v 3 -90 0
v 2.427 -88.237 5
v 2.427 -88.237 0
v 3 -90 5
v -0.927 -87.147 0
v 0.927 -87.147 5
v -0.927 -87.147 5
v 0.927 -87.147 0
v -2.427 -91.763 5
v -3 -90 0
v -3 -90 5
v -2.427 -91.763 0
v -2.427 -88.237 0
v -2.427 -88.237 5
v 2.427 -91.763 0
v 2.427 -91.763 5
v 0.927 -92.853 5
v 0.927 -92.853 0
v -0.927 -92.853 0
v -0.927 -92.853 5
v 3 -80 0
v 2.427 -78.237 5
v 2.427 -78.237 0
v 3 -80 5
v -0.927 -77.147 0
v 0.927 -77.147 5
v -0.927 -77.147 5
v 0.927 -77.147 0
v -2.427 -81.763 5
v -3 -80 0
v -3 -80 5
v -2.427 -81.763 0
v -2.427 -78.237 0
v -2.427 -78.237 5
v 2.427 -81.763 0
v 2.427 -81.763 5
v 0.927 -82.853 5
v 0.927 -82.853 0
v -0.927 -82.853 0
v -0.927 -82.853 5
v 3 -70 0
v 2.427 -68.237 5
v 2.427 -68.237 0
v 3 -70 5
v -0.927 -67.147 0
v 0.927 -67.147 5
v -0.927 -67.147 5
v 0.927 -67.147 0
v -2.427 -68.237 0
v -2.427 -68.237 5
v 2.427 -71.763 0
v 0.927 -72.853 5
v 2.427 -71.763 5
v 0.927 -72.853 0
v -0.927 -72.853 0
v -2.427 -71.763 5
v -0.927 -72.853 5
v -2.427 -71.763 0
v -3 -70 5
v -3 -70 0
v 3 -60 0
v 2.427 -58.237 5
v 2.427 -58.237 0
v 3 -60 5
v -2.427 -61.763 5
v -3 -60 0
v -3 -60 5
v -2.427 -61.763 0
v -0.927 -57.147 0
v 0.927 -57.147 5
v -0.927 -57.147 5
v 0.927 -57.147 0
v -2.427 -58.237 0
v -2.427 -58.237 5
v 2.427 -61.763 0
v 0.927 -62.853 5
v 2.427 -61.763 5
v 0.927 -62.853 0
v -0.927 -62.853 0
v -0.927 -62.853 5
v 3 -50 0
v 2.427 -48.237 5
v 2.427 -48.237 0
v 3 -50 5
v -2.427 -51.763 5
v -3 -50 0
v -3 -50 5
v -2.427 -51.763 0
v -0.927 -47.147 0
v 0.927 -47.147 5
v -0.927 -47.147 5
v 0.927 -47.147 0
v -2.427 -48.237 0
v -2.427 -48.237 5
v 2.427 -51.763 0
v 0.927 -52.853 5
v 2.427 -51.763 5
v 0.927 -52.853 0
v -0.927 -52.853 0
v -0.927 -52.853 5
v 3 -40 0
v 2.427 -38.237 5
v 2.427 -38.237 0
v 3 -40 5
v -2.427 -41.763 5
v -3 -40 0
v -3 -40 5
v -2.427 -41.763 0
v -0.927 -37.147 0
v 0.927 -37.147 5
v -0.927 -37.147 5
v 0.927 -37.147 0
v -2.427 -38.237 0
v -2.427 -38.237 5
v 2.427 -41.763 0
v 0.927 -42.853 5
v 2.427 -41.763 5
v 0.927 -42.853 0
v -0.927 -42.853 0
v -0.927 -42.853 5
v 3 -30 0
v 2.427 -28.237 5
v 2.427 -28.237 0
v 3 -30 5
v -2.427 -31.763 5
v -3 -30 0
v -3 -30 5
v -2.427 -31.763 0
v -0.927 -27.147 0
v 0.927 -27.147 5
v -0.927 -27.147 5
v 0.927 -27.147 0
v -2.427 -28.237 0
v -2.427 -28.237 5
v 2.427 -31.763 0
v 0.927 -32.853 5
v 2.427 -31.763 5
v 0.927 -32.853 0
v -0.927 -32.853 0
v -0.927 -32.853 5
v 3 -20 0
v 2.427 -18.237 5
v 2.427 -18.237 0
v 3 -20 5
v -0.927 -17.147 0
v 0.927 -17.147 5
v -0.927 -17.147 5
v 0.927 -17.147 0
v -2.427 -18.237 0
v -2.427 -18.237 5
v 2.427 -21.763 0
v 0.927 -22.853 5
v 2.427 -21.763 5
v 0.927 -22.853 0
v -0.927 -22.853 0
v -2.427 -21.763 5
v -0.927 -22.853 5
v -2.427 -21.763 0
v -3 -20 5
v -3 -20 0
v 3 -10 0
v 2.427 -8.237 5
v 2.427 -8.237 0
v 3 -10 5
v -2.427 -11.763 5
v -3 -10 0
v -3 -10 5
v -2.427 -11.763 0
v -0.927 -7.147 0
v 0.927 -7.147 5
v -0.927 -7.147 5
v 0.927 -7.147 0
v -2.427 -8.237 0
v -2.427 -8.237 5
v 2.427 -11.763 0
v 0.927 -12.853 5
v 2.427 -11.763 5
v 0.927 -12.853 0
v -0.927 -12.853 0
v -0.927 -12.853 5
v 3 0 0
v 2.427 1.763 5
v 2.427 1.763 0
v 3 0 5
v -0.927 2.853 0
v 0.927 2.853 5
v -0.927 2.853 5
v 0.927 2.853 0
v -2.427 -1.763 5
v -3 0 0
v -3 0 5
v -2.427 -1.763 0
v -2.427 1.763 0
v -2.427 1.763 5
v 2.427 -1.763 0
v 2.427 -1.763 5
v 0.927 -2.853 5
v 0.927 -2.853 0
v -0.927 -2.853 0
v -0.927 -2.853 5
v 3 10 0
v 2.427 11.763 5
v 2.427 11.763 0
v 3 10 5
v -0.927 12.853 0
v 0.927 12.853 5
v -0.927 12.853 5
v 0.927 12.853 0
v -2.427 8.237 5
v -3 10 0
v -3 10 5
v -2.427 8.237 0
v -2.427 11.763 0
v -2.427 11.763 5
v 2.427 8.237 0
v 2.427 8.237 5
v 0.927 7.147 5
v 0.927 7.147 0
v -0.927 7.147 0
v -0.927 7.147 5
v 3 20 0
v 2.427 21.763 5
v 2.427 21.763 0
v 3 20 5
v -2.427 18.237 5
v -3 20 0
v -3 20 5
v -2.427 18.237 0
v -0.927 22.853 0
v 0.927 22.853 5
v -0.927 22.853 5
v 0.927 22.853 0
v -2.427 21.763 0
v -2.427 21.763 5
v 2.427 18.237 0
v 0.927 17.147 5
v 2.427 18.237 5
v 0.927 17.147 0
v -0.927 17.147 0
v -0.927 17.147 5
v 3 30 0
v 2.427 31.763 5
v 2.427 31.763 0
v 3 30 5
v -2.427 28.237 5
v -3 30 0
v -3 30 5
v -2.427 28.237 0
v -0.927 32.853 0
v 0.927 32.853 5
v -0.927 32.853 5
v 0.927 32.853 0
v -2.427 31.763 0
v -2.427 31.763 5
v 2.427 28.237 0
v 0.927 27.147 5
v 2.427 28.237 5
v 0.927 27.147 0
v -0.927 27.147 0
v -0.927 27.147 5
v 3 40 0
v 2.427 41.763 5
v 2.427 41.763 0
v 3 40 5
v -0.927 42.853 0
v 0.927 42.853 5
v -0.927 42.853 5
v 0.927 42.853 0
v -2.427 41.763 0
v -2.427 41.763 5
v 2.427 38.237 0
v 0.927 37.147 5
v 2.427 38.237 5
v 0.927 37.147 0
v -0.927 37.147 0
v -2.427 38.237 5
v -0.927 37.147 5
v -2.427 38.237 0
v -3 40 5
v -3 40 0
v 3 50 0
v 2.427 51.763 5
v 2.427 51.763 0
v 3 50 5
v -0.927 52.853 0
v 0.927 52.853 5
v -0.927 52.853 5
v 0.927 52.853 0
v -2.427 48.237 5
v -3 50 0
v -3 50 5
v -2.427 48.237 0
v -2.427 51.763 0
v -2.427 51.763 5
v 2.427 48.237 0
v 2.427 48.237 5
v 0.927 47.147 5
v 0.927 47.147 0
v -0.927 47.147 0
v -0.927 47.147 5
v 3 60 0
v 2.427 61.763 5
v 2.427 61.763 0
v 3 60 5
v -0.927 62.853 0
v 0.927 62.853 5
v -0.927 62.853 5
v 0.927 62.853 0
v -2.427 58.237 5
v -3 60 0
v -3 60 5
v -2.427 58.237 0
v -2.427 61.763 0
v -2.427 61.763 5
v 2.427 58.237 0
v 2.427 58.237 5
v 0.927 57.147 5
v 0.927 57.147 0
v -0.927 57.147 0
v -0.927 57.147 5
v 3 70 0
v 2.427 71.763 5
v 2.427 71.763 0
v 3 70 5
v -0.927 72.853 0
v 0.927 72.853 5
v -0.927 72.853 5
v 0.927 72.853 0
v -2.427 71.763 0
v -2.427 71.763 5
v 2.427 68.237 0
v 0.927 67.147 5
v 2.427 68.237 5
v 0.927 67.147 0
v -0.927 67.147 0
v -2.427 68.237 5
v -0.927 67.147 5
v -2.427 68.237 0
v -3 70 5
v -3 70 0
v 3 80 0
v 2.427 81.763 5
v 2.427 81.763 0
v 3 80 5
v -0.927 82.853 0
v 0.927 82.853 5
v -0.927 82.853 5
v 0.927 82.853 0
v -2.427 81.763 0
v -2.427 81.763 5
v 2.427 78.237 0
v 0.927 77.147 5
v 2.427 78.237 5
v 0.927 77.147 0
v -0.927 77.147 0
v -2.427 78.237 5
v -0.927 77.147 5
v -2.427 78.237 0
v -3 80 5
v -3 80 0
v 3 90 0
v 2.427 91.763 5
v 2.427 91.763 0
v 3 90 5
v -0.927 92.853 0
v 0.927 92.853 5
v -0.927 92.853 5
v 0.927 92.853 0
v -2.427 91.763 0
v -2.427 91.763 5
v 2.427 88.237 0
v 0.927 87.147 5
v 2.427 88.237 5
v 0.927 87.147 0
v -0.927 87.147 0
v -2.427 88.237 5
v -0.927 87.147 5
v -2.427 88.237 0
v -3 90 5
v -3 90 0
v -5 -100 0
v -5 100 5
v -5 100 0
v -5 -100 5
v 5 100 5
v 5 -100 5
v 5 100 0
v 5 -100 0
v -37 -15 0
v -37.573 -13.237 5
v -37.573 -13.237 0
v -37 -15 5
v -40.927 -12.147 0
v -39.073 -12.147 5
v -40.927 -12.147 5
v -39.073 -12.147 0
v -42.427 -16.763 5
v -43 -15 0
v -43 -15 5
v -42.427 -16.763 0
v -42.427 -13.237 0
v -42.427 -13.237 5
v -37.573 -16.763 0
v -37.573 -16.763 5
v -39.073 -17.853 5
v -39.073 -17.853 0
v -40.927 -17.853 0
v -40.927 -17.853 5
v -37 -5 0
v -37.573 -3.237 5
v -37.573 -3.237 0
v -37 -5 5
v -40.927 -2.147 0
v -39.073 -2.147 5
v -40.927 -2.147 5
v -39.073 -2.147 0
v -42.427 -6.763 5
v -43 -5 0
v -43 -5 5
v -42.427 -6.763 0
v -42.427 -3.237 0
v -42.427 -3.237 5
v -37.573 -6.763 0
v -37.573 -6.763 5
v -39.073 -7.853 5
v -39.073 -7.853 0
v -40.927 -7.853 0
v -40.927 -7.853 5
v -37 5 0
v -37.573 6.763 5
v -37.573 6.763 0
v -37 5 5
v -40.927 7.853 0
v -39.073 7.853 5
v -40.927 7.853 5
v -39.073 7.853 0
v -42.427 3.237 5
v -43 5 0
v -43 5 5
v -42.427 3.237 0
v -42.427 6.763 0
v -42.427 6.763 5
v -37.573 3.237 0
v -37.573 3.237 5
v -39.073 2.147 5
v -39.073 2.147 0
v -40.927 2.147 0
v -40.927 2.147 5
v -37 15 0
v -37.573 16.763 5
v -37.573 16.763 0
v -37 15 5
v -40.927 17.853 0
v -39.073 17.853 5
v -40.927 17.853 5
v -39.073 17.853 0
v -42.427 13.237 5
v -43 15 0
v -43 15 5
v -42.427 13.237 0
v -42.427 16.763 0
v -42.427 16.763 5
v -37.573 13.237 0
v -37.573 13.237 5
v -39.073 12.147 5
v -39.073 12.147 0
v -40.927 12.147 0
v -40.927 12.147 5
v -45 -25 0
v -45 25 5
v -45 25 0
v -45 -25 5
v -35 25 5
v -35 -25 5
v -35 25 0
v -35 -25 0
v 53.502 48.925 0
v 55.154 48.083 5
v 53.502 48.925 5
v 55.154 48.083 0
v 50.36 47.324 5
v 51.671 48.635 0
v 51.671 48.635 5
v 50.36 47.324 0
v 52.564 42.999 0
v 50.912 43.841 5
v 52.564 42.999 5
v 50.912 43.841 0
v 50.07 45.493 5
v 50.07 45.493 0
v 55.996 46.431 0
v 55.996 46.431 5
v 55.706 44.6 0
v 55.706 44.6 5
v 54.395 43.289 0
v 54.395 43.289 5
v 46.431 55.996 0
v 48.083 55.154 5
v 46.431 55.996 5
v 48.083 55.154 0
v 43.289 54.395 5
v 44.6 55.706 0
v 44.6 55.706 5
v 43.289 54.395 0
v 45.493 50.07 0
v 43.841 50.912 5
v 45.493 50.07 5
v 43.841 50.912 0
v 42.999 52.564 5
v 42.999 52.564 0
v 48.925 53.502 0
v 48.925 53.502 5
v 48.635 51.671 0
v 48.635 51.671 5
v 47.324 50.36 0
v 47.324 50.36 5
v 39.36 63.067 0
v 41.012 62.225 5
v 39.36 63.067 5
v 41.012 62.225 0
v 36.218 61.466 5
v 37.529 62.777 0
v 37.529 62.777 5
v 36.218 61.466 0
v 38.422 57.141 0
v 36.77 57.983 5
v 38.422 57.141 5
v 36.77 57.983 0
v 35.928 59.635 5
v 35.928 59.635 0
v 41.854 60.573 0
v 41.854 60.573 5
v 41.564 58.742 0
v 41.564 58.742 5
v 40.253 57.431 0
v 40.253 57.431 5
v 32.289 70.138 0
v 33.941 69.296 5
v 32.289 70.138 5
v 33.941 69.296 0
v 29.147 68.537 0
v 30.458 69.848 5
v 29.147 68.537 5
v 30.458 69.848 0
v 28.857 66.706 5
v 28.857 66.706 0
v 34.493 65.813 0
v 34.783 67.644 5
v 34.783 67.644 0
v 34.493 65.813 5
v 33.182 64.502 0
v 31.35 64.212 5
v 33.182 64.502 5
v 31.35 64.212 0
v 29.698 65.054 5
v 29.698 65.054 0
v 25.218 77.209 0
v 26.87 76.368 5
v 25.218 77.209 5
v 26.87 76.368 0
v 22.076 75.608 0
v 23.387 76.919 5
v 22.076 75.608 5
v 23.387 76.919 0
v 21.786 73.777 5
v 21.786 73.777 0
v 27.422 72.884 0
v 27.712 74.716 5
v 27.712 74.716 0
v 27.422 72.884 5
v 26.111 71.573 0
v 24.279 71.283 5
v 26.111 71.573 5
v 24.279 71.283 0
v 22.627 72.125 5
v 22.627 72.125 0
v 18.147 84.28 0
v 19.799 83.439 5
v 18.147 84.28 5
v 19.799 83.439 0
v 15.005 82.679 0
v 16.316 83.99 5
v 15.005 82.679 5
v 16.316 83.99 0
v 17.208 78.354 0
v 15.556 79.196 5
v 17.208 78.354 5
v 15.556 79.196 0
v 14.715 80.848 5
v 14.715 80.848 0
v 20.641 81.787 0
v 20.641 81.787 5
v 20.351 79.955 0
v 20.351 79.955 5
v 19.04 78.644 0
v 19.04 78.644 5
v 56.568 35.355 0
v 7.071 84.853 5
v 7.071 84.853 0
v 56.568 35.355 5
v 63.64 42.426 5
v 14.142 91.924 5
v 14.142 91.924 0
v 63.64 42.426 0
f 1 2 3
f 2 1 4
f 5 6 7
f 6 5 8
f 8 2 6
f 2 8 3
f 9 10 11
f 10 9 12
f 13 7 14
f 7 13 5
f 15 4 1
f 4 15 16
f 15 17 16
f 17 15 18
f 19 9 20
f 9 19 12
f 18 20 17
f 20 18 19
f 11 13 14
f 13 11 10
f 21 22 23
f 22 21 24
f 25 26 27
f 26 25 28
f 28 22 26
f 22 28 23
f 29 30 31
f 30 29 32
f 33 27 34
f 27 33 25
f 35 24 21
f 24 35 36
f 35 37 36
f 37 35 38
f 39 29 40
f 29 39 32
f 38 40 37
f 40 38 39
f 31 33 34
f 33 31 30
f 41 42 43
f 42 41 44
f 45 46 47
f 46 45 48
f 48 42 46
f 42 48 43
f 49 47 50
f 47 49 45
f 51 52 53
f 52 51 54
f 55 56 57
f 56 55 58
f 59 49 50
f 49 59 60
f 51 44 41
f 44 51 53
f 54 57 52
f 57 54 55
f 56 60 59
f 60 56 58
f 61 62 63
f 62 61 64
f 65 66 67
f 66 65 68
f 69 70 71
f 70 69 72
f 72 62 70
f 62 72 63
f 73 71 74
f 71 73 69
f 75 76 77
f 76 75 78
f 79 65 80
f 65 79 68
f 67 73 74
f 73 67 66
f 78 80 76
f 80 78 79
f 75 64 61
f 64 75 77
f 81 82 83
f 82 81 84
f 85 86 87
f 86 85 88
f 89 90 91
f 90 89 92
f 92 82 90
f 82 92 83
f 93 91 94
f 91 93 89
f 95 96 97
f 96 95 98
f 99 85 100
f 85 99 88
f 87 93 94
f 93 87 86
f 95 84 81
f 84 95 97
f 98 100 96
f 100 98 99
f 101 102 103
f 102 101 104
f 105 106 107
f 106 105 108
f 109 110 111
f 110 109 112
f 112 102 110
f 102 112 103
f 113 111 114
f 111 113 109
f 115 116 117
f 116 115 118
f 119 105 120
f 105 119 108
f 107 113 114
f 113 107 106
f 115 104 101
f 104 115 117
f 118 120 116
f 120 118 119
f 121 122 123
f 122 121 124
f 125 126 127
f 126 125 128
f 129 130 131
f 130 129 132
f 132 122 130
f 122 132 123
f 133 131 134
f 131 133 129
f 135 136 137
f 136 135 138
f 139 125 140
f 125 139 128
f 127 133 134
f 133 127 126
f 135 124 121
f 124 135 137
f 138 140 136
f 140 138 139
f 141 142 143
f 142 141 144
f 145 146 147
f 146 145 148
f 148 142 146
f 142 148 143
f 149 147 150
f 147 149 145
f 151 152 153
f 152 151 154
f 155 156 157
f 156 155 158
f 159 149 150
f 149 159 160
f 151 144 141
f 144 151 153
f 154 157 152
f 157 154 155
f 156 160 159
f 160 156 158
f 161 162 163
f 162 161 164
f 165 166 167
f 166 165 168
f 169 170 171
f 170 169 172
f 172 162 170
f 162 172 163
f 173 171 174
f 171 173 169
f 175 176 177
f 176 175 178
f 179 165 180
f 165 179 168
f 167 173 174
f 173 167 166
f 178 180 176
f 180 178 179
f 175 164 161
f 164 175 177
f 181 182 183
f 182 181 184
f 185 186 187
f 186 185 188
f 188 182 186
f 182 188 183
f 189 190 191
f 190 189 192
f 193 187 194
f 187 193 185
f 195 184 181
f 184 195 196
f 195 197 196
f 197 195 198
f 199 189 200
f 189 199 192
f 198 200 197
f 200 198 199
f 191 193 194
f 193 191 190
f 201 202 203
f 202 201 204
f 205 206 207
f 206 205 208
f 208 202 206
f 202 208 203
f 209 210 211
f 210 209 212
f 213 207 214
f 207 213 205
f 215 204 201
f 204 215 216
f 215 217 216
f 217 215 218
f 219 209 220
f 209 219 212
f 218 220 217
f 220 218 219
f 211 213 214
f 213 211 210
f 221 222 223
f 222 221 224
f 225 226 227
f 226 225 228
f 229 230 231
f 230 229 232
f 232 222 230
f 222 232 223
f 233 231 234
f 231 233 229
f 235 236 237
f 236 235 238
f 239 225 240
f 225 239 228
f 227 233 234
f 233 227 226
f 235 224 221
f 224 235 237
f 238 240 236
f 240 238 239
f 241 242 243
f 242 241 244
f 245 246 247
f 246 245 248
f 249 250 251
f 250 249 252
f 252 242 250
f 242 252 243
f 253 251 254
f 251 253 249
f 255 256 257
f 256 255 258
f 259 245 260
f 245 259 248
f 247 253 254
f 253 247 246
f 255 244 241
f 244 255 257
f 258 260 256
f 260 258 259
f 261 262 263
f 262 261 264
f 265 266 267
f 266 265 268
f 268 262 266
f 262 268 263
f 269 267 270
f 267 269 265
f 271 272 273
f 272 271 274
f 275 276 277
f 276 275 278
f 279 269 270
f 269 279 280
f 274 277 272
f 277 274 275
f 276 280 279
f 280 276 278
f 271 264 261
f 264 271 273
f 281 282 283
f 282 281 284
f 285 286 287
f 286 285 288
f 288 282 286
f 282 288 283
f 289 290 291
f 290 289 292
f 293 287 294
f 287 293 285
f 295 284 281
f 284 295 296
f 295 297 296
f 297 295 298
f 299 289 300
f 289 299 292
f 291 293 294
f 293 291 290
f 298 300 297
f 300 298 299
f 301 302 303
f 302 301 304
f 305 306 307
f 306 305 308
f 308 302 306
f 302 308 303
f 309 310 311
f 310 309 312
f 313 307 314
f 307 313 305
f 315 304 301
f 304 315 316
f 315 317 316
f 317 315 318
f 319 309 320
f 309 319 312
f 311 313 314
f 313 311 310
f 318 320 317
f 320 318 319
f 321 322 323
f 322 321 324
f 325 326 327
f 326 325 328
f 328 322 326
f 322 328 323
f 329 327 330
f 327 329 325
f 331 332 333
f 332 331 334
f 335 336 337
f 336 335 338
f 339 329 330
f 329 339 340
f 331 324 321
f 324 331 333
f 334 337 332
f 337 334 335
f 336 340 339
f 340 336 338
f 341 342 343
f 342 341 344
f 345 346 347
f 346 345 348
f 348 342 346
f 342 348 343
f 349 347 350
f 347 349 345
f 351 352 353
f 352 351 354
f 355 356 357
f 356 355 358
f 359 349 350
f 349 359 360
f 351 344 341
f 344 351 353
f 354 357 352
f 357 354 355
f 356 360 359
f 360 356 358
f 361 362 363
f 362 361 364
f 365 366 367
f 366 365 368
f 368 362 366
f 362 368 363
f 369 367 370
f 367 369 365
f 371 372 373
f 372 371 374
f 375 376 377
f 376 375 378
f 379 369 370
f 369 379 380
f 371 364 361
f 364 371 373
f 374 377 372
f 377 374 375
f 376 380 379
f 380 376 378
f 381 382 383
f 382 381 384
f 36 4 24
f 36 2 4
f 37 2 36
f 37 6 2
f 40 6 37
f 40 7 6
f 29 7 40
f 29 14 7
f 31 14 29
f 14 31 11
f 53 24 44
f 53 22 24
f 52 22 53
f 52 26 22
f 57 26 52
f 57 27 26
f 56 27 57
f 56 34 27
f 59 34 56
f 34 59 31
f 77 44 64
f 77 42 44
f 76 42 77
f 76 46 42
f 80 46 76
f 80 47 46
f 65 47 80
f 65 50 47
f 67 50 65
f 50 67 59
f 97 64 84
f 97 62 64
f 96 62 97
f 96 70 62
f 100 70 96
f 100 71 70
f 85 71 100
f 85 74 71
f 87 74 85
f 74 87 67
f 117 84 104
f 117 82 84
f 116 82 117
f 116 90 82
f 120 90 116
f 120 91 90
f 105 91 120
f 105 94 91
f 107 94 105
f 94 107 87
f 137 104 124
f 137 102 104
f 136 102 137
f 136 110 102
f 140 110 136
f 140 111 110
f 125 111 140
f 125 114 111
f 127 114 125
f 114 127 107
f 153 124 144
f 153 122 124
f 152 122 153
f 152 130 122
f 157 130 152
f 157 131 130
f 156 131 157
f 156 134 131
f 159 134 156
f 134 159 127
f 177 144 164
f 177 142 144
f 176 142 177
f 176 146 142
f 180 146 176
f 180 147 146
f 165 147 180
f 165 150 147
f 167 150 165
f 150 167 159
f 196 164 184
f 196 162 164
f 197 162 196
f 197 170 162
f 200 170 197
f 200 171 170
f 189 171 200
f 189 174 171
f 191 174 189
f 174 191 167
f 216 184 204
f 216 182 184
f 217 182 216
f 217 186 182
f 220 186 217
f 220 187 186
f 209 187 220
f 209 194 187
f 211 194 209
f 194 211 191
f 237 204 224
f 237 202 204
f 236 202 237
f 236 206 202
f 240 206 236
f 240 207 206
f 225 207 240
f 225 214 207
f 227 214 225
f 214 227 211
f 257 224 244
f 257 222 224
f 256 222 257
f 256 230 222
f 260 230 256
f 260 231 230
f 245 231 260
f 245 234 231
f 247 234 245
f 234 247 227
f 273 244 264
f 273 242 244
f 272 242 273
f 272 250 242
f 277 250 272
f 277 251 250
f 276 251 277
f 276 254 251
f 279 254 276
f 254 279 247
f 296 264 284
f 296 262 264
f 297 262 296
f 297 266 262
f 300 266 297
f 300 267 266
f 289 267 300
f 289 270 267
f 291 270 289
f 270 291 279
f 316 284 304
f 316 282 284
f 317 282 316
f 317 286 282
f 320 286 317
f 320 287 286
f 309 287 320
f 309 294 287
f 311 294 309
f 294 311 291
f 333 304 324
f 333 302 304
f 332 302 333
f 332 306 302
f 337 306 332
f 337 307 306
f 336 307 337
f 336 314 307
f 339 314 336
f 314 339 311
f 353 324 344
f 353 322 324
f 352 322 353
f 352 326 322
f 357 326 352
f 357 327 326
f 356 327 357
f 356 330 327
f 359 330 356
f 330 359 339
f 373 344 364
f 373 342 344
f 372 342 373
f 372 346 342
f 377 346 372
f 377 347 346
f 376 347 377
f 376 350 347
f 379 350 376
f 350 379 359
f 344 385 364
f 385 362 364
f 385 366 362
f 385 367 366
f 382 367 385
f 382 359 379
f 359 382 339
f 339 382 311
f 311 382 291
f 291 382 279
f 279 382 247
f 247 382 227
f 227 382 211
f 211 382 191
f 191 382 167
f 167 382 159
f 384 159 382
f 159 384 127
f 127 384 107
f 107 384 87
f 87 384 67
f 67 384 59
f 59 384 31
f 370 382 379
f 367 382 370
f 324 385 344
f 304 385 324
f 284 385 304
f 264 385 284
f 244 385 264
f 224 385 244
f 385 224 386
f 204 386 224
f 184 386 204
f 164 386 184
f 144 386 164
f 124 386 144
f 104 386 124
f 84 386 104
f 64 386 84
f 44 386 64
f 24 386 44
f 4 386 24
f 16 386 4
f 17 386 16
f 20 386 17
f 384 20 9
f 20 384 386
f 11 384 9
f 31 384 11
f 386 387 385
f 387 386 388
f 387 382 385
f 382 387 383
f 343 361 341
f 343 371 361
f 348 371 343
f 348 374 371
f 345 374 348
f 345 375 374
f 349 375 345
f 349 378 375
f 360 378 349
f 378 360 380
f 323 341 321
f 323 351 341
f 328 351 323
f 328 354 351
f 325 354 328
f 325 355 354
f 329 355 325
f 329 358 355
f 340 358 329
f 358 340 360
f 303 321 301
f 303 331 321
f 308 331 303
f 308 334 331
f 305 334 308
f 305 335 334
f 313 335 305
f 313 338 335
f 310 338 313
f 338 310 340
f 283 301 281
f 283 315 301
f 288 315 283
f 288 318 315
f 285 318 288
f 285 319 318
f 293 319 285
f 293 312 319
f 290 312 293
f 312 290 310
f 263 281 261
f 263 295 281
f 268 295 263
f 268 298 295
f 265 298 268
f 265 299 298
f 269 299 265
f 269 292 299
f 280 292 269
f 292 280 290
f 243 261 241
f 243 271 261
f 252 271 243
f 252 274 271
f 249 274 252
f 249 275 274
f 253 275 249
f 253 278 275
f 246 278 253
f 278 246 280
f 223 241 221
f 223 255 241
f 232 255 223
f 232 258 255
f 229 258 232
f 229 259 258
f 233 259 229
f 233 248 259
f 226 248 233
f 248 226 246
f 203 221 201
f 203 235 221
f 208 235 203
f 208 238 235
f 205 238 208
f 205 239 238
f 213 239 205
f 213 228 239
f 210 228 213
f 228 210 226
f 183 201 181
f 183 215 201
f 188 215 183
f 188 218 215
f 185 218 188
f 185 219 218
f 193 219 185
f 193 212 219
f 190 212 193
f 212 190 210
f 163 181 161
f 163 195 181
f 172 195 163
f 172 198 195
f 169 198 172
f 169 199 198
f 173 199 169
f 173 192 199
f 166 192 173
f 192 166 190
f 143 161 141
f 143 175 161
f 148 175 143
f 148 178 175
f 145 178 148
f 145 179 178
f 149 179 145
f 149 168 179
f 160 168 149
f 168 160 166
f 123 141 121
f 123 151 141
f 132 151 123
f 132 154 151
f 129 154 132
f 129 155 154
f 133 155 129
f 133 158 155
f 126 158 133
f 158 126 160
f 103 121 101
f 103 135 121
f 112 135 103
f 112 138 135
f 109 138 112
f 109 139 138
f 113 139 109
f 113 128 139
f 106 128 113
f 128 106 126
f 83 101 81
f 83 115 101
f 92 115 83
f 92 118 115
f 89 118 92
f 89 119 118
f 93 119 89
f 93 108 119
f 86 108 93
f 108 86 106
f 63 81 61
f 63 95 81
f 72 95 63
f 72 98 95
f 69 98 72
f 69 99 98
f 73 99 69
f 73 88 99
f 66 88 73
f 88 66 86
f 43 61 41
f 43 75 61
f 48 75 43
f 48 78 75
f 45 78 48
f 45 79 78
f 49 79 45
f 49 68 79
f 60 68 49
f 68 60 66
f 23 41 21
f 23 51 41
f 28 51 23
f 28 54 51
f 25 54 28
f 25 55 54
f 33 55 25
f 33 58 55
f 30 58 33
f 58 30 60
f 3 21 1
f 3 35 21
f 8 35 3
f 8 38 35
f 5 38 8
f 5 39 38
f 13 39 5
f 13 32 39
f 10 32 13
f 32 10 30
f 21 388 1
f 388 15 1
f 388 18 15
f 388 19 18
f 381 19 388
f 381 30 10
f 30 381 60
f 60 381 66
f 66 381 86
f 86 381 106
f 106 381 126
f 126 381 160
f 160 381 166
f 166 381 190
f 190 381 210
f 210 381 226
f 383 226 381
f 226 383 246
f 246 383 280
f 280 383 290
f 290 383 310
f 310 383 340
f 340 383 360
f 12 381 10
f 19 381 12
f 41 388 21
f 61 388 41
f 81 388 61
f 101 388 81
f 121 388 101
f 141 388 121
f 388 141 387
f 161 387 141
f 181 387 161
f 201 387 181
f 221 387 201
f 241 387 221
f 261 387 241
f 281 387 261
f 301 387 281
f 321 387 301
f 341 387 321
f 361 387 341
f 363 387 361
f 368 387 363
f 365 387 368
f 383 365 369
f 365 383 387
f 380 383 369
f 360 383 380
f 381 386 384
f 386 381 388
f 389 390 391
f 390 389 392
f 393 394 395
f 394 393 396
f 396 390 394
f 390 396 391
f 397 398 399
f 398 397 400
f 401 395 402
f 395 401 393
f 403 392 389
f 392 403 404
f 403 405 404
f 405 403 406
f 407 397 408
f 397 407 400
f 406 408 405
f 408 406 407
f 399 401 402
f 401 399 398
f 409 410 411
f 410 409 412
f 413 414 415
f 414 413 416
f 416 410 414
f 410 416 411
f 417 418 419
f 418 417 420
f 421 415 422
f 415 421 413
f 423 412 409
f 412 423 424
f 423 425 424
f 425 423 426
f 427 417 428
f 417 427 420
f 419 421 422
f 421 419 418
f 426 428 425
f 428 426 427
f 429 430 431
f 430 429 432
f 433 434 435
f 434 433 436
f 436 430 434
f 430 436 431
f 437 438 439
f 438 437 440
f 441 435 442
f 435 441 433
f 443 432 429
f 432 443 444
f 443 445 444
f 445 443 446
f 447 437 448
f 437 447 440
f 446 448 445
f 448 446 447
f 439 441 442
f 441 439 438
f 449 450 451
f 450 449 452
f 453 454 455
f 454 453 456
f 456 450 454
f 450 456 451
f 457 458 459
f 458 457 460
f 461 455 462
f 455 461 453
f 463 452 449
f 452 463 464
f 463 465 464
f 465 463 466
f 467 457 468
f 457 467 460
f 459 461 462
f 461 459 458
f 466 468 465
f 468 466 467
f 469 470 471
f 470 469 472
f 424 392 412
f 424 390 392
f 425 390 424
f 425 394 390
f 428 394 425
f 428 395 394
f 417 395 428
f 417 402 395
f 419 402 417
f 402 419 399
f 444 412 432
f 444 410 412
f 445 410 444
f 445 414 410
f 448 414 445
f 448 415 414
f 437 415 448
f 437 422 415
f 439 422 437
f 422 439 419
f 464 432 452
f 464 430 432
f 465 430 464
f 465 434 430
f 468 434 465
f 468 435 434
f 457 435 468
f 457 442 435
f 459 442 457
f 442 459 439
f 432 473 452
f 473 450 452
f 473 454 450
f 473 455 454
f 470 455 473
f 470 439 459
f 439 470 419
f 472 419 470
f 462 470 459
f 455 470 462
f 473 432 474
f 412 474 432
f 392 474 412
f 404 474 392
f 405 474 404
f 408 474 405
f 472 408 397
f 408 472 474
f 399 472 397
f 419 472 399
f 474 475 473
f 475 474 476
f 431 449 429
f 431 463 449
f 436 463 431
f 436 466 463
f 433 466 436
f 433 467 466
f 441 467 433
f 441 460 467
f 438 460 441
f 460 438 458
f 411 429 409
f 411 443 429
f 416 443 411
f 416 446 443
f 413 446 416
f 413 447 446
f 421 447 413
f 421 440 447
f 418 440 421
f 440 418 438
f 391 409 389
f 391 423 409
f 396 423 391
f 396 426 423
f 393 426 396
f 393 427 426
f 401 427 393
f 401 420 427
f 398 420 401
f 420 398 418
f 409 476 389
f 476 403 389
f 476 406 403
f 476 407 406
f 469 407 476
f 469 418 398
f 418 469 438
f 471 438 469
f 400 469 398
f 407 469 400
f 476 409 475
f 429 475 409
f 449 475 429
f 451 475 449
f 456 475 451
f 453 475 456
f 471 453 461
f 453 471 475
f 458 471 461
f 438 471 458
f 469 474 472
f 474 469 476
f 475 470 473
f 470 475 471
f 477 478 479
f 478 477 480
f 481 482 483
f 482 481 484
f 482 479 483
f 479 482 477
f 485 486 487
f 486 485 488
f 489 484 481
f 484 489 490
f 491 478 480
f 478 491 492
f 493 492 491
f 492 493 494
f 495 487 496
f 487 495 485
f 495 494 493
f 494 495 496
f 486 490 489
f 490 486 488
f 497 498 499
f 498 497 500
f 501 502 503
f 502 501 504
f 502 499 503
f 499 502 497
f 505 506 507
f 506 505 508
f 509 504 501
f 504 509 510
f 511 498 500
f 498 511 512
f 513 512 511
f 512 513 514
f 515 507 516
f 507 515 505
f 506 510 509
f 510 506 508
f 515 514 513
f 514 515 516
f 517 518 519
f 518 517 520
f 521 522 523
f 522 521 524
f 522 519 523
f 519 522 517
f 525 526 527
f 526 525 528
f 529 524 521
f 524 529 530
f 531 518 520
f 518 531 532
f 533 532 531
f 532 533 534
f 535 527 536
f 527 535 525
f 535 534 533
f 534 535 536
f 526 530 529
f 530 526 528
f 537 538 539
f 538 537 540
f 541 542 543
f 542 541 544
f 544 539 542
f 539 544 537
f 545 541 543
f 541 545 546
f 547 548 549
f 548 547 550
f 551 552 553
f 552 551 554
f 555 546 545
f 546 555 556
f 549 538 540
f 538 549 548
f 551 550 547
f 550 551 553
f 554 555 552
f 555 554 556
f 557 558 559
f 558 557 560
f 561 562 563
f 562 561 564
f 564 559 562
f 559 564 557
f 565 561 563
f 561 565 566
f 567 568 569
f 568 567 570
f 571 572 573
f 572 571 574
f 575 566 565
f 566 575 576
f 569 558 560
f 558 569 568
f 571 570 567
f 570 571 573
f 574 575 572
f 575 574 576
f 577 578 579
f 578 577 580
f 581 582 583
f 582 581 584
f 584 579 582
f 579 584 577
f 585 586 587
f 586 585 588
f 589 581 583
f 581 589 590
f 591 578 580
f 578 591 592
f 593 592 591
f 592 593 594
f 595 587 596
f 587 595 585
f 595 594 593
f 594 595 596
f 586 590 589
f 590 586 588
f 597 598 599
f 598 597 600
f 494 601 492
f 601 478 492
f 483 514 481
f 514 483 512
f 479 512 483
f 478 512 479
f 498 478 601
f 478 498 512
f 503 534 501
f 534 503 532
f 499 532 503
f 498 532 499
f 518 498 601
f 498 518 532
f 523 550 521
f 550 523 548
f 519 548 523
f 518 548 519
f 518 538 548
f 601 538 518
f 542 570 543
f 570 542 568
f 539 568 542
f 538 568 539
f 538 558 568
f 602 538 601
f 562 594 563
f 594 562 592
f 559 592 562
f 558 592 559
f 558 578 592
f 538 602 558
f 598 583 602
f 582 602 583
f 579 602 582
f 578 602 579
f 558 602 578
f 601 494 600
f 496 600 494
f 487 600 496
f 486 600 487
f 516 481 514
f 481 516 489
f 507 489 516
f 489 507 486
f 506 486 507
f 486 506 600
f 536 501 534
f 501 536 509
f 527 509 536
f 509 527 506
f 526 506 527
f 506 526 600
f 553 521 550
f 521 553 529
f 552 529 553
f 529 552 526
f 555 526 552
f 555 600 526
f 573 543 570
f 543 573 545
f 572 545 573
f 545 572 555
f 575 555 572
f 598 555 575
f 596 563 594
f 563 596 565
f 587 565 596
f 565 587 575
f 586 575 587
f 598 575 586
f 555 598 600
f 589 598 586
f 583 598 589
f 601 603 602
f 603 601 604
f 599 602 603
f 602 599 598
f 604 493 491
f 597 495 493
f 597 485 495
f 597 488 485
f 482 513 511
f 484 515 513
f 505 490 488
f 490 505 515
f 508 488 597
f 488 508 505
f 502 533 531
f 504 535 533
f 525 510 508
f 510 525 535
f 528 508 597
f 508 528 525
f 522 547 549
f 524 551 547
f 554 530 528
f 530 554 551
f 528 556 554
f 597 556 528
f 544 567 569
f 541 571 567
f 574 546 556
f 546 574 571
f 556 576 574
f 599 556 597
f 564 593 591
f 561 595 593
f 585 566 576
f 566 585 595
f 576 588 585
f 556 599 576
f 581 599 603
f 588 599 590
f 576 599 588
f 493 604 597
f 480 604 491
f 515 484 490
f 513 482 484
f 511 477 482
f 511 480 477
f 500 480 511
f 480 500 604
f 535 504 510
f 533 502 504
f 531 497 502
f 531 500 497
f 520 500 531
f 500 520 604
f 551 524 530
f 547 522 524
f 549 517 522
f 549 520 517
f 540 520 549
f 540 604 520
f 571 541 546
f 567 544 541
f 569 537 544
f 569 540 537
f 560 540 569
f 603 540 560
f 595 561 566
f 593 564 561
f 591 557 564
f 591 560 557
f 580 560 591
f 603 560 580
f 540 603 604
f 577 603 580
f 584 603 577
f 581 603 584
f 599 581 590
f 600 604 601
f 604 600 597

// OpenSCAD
// file: mecano.scad
module pieza_mecano(nAgujeros, ancho=10,diam_hueco=6,alto=5)
{

	translate([-ancho/2,-nAgujeros*ancho/2,0])
	difference()
	{
	    // Pieza solida
	    cube([ancho,nAgujeros*ancho,alto],center=false);
	    
	    for(i=[1:nAgujeros-1])
	    {
	        translate([ancho/2,i*ancho,0])
	            cylinder(d=diam_hueco,h=alto*3,center=true);
	    }
	}
}
// main file
use <mecano.scad>

pieza_mecano(20);

translate([-40,0,0])
pieza_mecano(5);

rotate([0,0,45])
translate([70,20,0])
pieza_mecano(7);
